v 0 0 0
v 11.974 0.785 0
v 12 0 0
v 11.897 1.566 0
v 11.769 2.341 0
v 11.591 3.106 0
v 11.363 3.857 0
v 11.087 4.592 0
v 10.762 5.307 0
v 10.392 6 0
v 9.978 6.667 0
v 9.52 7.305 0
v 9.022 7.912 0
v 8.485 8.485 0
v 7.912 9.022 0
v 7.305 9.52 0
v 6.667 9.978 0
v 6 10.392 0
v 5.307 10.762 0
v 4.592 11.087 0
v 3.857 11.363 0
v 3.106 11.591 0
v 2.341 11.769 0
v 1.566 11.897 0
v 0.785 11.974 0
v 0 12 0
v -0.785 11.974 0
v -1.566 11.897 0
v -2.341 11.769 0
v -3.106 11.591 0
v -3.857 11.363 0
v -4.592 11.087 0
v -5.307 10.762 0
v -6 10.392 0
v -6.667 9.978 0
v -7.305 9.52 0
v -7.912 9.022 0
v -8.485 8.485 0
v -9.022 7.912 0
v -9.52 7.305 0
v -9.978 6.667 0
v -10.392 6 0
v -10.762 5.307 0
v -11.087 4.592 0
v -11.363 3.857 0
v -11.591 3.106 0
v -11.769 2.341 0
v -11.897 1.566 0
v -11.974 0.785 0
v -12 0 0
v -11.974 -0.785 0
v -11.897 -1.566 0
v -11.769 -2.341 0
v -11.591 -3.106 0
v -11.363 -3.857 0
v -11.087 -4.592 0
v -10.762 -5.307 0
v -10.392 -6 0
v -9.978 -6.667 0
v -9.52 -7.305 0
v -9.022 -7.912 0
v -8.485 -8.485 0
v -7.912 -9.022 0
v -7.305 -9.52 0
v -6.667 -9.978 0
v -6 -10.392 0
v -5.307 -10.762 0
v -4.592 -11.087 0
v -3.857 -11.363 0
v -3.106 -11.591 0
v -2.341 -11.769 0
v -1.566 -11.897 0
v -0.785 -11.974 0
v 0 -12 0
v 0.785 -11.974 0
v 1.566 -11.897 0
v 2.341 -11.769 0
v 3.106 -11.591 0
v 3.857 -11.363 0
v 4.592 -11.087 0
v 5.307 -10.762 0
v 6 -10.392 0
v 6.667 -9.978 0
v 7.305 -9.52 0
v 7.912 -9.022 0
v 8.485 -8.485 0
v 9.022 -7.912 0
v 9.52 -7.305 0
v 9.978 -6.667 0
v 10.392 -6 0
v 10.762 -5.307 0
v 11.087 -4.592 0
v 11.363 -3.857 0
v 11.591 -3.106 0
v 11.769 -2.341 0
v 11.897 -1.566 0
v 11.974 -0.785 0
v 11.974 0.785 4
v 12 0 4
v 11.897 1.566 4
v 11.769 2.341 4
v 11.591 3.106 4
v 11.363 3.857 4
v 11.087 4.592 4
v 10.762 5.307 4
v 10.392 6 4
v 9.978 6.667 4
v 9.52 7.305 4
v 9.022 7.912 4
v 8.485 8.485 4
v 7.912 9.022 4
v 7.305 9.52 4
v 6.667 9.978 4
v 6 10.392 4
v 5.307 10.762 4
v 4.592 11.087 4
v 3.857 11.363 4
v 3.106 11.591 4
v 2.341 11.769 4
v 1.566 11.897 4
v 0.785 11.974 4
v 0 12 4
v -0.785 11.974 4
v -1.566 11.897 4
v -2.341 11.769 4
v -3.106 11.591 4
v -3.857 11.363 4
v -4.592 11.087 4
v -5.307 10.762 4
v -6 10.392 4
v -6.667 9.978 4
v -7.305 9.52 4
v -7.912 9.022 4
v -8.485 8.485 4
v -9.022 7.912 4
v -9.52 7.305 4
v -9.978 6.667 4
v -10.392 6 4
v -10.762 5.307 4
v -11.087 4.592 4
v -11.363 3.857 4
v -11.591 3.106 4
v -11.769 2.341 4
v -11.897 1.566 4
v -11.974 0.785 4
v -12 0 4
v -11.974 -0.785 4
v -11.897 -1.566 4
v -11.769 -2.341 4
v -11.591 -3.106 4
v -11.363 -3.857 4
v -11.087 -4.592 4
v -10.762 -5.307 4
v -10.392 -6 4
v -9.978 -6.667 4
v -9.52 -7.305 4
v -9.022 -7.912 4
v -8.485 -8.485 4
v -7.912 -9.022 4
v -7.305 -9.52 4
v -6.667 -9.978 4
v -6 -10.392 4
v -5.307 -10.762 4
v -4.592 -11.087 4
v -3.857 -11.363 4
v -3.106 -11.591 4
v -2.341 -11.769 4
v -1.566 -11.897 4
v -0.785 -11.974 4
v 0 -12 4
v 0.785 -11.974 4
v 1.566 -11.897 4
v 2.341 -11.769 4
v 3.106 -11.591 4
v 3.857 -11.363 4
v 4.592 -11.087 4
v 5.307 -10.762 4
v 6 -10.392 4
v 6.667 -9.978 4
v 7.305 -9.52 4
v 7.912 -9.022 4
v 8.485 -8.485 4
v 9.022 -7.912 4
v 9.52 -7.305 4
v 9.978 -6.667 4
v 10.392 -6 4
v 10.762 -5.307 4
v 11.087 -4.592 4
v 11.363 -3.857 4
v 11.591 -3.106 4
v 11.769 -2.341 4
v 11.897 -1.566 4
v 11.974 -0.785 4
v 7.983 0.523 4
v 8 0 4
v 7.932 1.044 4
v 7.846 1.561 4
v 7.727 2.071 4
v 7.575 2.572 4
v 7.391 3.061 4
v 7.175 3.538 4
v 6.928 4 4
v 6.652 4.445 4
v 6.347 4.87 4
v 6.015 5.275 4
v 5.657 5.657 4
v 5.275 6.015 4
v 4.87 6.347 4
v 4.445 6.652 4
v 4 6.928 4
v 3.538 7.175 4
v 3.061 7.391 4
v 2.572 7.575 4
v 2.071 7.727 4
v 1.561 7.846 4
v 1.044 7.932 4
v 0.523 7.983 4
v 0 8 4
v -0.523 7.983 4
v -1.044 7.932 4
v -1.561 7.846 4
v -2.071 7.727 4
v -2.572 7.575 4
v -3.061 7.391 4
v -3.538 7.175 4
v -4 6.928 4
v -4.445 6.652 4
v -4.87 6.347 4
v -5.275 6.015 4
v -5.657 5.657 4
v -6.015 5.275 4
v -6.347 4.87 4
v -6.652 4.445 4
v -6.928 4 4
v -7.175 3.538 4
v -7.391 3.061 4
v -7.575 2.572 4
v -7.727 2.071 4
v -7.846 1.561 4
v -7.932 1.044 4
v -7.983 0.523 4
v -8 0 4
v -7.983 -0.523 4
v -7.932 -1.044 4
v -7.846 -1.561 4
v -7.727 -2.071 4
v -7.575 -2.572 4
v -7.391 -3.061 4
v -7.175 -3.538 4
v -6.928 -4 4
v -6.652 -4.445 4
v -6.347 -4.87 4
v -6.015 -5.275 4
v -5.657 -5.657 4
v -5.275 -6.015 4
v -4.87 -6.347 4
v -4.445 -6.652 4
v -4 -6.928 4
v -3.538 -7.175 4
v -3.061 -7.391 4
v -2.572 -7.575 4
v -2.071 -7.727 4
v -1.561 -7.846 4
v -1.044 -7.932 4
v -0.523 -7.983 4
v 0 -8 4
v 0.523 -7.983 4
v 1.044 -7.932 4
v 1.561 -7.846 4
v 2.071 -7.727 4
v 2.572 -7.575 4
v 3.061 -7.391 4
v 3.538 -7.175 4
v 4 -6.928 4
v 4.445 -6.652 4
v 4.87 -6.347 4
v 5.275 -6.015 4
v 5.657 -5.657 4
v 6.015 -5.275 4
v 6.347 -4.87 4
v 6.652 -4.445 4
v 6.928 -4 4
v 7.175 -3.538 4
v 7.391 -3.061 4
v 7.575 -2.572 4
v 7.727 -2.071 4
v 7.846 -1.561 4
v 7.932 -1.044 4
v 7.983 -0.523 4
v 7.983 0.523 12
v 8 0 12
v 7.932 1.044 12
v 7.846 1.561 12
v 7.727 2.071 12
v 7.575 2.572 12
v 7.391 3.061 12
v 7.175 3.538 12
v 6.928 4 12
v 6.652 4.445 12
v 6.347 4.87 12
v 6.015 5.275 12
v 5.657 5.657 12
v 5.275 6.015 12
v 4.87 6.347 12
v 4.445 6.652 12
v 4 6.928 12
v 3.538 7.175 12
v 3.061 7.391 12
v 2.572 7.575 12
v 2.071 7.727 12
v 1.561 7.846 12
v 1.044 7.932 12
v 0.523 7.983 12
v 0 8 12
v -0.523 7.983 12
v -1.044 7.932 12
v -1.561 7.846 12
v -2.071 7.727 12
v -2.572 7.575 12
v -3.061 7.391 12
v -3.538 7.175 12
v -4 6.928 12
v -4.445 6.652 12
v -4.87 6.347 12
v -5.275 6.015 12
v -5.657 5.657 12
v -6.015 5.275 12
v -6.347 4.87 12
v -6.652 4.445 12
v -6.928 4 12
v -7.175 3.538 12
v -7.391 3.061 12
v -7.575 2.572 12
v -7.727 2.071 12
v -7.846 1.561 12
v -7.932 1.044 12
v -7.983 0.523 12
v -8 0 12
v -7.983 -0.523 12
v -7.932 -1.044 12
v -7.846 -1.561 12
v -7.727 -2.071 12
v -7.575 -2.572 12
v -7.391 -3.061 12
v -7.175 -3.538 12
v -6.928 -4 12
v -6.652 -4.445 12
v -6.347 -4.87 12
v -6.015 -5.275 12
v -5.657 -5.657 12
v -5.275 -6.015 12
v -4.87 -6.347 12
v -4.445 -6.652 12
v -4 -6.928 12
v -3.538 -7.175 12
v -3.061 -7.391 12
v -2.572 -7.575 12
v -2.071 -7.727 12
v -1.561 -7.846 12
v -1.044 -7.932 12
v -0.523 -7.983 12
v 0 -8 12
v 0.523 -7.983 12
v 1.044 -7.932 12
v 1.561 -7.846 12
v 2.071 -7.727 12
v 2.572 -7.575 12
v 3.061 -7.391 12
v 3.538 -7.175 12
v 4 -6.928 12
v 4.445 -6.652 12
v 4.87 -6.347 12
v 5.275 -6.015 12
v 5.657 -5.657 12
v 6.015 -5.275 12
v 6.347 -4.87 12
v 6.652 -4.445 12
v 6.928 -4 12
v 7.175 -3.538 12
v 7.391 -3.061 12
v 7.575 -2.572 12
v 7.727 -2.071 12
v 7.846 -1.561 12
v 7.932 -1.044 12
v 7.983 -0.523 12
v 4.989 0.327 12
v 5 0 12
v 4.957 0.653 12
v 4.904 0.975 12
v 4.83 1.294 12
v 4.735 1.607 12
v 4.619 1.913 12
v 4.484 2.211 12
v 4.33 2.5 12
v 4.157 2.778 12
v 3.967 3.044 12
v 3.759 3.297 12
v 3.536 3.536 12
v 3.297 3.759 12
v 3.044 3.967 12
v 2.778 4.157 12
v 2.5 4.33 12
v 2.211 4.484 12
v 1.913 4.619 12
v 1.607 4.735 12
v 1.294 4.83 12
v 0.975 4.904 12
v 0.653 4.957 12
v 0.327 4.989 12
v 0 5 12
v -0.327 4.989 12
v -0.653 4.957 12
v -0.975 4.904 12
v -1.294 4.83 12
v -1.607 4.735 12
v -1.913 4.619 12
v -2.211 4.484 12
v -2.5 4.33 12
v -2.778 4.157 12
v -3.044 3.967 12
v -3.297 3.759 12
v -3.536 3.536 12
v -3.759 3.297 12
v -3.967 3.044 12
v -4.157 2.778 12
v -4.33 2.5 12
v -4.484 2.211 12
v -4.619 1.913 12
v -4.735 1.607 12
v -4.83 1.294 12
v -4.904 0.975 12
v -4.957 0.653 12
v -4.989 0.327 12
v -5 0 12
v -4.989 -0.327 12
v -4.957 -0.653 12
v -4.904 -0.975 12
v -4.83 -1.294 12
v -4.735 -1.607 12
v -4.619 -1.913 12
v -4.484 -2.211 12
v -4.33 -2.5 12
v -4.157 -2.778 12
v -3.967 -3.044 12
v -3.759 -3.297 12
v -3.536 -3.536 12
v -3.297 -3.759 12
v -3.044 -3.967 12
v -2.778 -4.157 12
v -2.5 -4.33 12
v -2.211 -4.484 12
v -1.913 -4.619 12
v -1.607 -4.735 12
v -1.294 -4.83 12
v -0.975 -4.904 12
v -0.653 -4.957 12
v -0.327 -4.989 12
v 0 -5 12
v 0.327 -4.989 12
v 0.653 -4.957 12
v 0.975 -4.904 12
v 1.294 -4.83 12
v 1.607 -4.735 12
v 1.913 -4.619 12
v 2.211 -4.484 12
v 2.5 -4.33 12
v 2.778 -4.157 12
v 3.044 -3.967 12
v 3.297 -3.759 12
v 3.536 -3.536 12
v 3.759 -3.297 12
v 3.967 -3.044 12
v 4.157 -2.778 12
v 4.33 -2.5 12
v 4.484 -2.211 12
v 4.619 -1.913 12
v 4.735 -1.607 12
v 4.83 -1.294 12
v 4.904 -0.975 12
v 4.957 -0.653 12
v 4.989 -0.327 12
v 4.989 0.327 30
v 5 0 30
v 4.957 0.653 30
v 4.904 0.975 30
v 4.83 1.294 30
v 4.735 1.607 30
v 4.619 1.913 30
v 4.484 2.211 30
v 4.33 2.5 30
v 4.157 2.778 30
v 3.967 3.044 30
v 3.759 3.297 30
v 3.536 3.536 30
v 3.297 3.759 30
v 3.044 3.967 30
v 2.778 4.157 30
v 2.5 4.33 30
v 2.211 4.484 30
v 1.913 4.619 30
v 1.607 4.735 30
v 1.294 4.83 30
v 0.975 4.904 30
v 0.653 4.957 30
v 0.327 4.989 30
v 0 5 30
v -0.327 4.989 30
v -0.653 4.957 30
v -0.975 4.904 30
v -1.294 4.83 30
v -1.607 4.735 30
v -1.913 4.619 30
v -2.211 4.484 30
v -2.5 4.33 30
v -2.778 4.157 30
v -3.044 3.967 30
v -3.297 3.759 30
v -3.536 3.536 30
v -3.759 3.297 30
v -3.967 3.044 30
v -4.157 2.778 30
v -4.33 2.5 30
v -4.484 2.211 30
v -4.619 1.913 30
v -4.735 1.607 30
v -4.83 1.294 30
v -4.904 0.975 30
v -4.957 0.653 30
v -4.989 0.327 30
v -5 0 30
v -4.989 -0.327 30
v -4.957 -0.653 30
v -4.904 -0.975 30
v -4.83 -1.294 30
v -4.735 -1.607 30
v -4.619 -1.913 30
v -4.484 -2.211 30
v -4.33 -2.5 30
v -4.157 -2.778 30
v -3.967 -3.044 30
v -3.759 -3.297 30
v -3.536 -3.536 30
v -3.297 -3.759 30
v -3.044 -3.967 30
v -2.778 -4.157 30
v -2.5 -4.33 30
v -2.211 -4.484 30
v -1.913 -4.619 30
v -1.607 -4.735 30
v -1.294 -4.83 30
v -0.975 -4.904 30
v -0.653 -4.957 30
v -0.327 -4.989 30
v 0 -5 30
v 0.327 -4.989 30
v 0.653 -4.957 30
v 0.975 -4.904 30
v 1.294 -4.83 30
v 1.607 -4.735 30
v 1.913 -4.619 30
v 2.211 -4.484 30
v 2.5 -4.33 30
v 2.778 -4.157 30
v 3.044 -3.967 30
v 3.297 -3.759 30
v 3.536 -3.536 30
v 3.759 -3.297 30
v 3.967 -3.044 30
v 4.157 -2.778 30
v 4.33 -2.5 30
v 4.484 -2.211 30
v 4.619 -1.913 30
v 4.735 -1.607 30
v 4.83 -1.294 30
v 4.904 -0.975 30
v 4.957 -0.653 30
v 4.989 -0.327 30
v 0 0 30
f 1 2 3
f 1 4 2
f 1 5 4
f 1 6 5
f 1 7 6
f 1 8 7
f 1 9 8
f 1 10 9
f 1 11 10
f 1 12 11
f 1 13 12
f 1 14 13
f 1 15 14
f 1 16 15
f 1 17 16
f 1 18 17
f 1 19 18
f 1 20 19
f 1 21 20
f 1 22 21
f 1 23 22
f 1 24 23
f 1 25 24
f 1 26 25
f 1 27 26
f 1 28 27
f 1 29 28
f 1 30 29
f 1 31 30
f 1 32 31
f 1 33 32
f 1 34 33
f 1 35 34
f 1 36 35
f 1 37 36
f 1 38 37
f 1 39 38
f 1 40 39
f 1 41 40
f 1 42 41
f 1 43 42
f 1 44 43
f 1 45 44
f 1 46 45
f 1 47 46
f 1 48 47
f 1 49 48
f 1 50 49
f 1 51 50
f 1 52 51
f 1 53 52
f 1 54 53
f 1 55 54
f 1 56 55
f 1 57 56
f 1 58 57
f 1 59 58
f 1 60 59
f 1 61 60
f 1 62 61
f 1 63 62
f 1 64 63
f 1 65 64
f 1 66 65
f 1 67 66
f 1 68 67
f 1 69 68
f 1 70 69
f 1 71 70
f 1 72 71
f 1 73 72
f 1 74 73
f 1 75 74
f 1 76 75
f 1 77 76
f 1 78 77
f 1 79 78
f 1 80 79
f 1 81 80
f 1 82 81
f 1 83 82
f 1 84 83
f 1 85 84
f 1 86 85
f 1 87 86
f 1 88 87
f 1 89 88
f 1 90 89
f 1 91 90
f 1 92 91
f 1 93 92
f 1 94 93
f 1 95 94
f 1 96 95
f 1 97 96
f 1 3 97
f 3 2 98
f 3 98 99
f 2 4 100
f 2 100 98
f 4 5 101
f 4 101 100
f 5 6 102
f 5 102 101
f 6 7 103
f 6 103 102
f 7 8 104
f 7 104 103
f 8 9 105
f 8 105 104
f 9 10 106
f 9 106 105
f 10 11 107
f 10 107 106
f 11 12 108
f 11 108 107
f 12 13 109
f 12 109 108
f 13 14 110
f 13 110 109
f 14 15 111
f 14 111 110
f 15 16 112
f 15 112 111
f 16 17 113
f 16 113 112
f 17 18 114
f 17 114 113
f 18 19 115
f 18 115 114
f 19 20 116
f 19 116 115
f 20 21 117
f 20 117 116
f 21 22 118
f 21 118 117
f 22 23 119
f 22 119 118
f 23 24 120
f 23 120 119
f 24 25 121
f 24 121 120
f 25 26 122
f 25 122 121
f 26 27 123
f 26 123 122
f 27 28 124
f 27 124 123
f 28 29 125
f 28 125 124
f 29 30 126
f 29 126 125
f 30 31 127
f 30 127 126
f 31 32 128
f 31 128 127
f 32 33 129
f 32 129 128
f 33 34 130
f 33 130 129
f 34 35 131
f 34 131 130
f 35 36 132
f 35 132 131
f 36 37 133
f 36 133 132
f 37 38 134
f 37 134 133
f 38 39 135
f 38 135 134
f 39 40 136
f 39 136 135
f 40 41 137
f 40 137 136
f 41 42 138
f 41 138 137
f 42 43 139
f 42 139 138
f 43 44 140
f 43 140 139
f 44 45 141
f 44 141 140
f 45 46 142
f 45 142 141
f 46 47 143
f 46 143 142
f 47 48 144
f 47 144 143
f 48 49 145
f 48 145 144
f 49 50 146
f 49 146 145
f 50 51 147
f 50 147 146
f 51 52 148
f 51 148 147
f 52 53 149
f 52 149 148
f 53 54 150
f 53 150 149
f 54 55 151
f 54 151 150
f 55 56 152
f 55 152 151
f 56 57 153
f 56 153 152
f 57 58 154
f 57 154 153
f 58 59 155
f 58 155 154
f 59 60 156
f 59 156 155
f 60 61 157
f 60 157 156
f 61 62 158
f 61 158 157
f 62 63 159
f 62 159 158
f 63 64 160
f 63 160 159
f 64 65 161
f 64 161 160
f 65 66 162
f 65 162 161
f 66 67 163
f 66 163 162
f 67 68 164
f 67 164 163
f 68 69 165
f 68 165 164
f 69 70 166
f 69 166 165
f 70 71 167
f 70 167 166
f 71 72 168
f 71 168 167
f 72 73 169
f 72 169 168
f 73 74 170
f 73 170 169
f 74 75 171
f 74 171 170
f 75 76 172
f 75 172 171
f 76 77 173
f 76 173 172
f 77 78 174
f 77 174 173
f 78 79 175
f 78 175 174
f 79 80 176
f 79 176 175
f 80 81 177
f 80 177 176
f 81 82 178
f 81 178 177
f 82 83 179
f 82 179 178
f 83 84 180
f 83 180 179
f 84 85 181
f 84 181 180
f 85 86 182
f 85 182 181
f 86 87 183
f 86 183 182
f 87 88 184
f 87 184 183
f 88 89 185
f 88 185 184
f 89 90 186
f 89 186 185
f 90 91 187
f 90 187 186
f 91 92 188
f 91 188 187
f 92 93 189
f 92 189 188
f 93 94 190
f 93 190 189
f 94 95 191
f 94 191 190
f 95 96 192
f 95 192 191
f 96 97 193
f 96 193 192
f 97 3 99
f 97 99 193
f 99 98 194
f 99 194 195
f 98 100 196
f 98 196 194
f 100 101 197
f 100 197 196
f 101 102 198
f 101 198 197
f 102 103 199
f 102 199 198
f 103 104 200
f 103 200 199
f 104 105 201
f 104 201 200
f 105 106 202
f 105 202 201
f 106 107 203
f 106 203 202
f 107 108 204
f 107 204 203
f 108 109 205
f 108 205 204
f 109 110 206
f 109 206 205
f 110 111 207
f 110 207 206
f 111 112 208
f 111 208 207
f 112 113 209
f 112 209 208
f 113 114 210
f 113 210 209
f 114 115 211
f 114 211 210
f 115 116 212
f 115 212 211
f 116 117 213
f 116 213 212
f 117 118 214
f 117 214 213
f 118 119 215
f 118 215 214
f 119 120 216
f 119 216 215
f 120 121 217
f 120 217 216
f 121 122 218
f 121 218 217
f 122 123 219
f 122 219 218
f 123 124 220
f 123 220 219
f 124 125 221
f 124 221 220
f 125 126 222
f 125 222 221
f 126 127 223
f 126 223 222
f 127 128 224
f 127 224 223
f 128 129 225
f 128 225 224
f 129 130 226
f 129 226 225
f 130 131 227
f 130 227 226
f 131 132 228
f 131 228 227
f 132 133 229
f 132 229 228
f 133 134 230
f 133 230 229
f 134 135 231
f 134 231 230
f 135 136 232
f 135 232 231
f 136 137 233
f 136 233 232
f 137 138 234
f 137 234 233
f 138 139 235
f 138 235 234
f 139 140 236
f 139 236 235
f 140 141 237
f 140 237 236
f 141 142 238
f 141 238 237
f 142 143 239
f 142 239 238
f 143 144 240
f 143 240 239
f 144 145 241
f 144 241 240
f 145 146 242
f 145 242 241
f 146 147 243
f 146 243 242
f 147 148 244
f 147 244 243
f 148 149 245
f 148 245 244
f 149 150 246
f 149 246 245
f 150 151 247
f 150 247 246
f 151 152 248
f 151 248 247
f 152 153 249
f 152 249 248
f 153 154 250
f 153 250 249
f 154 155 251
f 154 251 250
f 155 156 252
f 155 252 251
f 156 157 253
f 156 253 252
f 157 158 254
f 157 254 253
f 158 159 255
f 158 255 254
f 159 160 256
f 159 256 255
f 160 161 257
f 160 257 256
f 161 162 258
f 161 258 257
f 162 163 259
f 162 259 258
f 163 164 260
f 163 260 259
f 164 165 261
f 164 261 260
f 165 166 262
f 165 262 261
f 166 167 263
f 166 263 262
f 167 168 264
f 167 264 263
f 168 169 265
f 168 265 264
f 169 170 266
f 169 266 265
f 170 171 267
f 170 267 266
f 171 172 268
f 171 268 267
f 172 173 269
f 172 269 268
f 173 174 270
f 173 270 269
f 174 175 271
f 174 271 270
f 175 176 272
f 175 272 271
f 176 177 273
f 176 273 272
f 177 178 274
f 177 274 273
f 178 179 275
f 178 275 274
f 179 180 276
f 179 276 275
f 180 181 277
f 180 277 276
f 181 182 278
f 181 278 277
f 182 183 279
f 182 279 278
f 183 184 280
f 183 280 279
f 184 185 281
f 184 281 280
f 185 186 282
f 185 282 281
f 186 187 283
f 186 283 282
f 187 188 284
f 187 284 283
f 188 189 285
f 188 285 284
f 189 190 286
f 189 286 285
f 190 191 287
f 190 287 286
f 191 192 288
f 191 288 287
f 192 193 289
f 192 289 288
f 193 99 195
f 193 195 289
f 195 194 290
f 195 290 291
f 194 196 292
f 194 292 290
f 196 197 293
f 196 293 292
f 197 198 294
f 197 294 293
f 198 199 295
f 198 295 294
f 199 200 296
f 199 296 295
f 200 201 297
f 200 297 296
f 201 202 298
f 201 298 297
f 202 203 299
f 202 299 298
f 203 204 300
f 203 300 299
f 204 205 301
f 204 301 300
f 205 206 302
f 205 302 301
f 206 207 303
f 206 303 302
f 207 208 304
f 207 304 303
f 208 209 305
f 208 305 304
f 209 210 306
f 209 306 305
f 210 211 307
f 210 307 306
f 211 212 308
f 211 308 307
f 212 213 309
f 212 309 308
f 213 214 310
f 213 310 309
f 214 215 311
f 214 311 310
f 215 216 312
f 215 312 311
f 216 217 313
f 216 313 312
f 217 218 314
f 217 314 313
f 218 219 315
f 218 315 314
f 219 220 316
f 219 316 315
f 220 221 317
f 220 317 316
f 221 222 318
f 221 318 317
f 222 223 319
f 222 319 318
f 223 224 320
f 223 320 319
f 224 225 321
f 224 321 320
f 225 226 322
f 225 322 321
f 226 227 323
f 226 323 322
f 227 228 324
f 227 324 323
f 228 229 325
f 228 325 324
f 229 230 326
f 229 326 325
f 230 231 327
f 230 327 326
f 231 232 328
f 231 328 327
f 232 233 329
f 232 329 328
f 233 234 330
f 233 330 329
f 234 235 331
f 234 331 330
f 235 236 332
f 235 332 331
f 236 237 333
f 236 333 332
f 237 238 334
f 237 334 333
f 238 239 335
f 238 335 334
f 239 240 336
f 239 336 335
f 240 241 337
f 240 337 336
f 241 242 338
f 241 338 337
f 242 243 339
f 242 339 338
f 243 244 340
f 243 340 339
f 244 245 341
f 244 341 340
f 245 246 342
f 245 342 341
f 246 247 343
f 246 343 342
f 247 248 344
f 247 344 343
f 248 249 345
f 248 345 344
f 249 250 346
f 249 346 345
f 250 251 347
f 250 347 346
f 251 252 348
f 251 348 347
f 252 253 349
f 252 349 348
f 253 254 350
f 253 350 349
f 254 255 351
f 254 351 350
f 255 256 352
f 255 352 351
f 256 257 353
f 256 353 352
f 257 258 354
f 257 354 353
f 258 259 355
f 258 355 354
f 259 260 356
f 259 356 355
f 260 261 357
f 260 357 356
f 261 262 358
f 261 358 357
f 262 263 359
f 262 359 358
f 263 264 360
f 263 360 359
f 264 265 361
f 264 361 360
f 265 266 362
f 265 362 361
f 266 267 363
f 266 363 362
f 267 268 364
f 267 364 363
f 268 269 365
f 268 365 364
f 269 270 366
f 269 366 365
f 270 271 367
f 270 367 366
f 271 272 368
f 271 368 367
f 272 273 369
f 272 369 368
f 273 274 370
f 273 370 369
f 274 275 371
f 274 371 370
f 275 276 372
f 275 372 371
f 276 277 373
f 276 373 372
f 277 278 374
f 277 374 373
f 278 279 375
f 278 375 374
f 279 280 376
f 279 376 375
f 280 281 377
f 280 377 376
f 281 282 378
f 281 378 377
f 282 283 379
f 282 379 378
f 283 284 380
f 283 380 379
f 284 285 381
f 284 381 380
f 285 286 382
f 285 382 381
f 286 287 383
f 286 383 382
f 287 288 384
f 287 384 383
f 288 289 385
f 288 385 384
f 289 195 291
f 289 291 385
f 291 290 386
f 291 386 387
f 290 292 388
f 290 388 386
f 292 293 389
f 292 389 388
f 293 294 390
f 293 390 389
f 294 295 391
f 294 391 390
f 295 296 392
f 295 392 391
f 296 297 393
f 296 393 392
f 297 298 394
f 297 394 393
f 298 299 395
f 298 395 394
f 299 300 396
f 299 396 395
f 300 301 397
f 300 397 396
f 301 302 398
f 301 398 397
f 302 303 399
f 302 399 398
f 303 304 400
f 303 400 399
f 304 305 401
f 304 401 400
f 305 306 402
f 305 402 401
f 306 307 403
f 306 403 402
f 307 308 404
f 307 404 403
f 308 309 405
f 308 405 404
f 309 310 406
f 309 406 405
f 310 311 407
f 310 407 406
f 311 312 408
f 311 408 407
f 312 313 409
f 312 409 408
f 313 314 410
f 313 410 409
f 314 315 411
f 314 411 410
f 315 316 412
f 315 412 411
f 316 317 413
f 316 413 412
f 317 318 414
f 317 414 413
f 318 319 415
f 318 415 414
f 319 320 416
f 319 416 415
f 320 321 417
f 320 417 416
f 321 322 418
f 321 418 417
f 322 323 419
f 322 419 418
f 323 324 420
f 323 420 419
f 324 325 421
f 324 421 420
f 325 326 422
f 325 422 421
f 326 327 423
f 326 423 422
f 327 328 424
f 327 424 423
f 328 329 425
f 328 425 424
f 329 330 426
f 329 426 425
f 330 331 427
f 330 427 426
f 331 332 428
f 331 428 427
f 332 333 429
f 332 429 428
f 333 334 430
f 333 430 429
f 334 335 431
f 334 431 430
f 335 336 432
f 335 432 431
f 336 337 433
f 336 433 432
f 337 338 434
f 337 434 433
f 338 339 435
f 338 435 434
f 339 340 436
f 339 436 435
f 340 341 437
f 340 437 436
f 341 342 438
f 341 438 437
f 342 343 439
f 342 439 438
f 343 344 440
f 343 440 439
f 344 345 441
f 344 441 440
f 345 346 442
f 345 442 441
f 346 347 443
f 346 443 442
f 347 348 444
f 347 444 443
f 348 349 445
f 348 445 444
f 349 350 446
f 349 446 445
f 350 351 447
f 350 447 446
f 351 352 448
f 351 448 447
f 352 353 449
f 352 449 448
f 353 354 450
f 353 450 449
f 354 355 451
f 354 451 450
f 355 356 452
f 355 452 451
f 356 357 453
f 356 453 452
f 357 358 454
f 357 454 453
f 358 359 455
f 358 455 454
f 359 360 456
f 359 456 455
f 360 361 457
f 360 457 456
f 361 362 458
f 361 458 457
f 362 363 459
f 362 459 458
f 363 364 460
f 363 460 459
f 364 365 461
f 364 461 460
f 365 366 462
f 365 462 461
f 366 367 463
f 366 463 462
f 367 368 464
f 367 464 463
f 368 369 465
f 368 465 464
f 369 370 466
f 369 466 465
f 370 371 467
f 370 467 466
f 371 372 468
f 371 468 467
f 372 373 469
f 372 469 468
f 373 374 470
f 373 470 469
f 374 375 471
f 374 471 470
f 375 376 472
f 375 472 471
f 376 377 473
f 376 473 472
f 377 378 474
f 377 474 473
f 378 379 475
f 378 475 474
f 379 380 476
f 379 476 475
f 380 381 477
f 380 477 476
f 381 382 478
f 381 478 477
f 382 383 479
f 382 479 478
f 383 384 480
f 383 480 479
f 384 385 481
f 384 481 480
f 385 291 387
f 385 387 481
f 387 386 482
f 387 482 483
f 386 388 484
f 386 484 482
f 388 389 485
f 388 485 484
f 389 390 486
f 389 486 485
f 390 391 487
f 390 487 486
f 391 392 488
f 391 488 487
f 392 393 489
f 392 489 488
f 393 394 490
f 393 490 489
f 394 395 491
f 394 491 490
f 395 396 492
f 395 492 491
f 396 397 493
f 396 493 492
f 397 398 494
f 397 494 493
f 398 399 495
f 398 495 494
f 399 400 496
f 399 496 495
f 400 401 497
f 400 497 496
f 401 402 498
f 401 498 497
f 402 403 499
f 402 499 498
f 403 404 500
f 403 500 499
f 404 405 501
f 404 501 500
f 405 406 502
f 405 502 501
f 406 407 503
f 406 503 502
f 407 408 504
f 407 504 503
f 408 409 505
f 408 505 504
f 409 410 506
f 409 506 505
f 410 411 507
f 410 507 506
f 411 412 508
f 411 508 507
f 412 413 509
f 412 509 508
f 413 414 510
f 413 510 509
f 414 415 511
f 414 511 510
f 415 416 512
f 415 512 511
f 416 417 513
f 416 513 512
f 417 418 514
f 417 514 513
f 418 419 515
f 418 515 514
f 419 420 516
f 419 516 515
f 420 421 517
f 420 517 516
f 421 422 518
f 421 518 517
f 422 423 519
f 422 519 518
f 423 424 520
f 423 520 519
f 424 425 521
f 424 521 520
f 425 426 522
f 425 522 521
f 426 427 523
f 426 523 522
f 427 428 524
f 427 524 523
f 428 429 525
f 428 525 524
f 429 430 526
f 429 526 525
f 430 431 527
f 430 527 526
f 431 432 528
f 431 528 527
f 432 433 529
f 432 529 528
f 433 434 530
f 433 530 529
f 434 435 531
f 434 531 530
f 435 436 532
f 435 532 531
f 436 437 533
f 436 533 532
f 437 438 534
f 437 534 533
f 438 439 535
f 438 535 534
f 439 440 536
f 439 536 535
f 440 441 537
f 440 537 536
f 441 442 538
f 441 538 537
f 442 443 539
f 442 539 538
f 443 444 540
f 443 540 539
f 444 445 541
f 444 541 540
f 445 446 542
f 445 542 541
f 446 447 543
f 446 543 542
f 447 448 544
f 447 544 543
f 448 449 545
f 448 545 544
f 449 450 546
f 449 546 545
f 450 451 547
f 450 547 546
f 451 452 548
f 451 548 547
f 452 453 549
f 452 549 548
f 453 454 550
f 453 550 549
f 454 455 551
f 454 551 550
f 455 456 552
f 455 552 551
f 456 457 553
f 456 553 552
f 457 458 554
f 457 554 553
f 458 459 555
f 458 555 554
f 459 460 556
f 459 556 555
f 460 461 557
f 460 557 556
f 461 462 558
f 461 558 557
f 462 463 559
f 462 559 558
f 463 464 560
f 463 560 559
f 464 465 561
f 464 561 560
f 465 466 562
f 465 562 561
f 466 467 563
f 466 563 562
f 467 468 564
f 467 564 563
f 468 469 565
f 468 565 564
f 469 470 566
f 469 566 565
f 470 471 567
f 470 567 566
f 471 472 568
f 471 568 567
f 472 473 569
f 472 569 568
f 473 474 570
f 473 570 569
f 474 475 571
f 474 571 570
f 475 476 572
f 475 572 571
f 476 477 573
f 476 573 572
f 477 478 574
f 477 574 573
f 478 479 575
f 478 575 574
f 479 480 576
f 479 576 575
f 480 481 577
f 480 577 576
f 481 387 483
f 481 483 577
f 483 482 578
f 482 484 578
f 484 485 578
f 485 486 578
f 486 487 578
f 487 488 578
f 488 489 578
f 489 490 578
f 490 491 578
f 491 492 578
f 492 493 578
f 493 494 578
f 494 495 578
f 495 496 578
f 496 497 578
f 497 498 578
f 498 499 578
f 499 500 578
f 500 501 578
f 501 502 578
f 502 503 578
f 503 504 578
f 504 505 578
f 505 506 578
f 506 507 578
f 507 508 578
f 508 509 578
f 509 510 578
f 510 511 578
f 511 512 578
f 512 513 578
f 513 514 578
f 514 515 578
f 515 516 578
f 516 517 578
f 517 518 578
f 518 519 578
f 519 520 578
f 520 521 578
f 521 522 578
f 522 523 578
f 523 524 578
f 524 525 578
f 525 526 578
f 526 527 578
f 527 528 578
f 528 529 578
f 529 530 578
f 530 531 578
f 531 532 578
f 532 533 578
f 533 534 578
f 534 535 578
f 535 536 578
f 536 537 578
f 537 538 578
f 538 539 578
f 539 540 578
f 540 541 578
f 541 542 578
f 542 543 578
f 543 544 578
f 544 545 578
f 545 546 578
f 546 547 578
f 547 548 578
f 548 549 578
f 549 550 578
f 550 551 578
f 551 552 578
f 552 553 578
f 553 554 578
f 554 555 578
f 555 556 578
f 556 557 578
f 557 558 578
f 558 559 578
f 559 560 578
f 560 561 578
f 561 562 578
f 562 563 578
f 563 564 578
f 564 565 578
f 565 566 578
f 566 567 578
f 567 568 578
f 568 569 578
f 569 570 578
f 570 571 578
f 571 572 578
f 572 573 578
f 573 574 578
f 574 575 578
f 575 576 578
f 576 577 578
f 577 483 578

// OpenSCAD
// Original MechIntel educational model. CC0-1.0. Units: mm.
// Not a standardized or load-rated component.
$fn=96;
// Section points: [radius, height], mm. Edit to change the profile.
section=[[0, 0], [12, 0], [12, 4], [8, 4], [8, 12], [5, 12], [5, 30], [0, 30]];
rotate_extrude($fn=96) polygon(points=section);
